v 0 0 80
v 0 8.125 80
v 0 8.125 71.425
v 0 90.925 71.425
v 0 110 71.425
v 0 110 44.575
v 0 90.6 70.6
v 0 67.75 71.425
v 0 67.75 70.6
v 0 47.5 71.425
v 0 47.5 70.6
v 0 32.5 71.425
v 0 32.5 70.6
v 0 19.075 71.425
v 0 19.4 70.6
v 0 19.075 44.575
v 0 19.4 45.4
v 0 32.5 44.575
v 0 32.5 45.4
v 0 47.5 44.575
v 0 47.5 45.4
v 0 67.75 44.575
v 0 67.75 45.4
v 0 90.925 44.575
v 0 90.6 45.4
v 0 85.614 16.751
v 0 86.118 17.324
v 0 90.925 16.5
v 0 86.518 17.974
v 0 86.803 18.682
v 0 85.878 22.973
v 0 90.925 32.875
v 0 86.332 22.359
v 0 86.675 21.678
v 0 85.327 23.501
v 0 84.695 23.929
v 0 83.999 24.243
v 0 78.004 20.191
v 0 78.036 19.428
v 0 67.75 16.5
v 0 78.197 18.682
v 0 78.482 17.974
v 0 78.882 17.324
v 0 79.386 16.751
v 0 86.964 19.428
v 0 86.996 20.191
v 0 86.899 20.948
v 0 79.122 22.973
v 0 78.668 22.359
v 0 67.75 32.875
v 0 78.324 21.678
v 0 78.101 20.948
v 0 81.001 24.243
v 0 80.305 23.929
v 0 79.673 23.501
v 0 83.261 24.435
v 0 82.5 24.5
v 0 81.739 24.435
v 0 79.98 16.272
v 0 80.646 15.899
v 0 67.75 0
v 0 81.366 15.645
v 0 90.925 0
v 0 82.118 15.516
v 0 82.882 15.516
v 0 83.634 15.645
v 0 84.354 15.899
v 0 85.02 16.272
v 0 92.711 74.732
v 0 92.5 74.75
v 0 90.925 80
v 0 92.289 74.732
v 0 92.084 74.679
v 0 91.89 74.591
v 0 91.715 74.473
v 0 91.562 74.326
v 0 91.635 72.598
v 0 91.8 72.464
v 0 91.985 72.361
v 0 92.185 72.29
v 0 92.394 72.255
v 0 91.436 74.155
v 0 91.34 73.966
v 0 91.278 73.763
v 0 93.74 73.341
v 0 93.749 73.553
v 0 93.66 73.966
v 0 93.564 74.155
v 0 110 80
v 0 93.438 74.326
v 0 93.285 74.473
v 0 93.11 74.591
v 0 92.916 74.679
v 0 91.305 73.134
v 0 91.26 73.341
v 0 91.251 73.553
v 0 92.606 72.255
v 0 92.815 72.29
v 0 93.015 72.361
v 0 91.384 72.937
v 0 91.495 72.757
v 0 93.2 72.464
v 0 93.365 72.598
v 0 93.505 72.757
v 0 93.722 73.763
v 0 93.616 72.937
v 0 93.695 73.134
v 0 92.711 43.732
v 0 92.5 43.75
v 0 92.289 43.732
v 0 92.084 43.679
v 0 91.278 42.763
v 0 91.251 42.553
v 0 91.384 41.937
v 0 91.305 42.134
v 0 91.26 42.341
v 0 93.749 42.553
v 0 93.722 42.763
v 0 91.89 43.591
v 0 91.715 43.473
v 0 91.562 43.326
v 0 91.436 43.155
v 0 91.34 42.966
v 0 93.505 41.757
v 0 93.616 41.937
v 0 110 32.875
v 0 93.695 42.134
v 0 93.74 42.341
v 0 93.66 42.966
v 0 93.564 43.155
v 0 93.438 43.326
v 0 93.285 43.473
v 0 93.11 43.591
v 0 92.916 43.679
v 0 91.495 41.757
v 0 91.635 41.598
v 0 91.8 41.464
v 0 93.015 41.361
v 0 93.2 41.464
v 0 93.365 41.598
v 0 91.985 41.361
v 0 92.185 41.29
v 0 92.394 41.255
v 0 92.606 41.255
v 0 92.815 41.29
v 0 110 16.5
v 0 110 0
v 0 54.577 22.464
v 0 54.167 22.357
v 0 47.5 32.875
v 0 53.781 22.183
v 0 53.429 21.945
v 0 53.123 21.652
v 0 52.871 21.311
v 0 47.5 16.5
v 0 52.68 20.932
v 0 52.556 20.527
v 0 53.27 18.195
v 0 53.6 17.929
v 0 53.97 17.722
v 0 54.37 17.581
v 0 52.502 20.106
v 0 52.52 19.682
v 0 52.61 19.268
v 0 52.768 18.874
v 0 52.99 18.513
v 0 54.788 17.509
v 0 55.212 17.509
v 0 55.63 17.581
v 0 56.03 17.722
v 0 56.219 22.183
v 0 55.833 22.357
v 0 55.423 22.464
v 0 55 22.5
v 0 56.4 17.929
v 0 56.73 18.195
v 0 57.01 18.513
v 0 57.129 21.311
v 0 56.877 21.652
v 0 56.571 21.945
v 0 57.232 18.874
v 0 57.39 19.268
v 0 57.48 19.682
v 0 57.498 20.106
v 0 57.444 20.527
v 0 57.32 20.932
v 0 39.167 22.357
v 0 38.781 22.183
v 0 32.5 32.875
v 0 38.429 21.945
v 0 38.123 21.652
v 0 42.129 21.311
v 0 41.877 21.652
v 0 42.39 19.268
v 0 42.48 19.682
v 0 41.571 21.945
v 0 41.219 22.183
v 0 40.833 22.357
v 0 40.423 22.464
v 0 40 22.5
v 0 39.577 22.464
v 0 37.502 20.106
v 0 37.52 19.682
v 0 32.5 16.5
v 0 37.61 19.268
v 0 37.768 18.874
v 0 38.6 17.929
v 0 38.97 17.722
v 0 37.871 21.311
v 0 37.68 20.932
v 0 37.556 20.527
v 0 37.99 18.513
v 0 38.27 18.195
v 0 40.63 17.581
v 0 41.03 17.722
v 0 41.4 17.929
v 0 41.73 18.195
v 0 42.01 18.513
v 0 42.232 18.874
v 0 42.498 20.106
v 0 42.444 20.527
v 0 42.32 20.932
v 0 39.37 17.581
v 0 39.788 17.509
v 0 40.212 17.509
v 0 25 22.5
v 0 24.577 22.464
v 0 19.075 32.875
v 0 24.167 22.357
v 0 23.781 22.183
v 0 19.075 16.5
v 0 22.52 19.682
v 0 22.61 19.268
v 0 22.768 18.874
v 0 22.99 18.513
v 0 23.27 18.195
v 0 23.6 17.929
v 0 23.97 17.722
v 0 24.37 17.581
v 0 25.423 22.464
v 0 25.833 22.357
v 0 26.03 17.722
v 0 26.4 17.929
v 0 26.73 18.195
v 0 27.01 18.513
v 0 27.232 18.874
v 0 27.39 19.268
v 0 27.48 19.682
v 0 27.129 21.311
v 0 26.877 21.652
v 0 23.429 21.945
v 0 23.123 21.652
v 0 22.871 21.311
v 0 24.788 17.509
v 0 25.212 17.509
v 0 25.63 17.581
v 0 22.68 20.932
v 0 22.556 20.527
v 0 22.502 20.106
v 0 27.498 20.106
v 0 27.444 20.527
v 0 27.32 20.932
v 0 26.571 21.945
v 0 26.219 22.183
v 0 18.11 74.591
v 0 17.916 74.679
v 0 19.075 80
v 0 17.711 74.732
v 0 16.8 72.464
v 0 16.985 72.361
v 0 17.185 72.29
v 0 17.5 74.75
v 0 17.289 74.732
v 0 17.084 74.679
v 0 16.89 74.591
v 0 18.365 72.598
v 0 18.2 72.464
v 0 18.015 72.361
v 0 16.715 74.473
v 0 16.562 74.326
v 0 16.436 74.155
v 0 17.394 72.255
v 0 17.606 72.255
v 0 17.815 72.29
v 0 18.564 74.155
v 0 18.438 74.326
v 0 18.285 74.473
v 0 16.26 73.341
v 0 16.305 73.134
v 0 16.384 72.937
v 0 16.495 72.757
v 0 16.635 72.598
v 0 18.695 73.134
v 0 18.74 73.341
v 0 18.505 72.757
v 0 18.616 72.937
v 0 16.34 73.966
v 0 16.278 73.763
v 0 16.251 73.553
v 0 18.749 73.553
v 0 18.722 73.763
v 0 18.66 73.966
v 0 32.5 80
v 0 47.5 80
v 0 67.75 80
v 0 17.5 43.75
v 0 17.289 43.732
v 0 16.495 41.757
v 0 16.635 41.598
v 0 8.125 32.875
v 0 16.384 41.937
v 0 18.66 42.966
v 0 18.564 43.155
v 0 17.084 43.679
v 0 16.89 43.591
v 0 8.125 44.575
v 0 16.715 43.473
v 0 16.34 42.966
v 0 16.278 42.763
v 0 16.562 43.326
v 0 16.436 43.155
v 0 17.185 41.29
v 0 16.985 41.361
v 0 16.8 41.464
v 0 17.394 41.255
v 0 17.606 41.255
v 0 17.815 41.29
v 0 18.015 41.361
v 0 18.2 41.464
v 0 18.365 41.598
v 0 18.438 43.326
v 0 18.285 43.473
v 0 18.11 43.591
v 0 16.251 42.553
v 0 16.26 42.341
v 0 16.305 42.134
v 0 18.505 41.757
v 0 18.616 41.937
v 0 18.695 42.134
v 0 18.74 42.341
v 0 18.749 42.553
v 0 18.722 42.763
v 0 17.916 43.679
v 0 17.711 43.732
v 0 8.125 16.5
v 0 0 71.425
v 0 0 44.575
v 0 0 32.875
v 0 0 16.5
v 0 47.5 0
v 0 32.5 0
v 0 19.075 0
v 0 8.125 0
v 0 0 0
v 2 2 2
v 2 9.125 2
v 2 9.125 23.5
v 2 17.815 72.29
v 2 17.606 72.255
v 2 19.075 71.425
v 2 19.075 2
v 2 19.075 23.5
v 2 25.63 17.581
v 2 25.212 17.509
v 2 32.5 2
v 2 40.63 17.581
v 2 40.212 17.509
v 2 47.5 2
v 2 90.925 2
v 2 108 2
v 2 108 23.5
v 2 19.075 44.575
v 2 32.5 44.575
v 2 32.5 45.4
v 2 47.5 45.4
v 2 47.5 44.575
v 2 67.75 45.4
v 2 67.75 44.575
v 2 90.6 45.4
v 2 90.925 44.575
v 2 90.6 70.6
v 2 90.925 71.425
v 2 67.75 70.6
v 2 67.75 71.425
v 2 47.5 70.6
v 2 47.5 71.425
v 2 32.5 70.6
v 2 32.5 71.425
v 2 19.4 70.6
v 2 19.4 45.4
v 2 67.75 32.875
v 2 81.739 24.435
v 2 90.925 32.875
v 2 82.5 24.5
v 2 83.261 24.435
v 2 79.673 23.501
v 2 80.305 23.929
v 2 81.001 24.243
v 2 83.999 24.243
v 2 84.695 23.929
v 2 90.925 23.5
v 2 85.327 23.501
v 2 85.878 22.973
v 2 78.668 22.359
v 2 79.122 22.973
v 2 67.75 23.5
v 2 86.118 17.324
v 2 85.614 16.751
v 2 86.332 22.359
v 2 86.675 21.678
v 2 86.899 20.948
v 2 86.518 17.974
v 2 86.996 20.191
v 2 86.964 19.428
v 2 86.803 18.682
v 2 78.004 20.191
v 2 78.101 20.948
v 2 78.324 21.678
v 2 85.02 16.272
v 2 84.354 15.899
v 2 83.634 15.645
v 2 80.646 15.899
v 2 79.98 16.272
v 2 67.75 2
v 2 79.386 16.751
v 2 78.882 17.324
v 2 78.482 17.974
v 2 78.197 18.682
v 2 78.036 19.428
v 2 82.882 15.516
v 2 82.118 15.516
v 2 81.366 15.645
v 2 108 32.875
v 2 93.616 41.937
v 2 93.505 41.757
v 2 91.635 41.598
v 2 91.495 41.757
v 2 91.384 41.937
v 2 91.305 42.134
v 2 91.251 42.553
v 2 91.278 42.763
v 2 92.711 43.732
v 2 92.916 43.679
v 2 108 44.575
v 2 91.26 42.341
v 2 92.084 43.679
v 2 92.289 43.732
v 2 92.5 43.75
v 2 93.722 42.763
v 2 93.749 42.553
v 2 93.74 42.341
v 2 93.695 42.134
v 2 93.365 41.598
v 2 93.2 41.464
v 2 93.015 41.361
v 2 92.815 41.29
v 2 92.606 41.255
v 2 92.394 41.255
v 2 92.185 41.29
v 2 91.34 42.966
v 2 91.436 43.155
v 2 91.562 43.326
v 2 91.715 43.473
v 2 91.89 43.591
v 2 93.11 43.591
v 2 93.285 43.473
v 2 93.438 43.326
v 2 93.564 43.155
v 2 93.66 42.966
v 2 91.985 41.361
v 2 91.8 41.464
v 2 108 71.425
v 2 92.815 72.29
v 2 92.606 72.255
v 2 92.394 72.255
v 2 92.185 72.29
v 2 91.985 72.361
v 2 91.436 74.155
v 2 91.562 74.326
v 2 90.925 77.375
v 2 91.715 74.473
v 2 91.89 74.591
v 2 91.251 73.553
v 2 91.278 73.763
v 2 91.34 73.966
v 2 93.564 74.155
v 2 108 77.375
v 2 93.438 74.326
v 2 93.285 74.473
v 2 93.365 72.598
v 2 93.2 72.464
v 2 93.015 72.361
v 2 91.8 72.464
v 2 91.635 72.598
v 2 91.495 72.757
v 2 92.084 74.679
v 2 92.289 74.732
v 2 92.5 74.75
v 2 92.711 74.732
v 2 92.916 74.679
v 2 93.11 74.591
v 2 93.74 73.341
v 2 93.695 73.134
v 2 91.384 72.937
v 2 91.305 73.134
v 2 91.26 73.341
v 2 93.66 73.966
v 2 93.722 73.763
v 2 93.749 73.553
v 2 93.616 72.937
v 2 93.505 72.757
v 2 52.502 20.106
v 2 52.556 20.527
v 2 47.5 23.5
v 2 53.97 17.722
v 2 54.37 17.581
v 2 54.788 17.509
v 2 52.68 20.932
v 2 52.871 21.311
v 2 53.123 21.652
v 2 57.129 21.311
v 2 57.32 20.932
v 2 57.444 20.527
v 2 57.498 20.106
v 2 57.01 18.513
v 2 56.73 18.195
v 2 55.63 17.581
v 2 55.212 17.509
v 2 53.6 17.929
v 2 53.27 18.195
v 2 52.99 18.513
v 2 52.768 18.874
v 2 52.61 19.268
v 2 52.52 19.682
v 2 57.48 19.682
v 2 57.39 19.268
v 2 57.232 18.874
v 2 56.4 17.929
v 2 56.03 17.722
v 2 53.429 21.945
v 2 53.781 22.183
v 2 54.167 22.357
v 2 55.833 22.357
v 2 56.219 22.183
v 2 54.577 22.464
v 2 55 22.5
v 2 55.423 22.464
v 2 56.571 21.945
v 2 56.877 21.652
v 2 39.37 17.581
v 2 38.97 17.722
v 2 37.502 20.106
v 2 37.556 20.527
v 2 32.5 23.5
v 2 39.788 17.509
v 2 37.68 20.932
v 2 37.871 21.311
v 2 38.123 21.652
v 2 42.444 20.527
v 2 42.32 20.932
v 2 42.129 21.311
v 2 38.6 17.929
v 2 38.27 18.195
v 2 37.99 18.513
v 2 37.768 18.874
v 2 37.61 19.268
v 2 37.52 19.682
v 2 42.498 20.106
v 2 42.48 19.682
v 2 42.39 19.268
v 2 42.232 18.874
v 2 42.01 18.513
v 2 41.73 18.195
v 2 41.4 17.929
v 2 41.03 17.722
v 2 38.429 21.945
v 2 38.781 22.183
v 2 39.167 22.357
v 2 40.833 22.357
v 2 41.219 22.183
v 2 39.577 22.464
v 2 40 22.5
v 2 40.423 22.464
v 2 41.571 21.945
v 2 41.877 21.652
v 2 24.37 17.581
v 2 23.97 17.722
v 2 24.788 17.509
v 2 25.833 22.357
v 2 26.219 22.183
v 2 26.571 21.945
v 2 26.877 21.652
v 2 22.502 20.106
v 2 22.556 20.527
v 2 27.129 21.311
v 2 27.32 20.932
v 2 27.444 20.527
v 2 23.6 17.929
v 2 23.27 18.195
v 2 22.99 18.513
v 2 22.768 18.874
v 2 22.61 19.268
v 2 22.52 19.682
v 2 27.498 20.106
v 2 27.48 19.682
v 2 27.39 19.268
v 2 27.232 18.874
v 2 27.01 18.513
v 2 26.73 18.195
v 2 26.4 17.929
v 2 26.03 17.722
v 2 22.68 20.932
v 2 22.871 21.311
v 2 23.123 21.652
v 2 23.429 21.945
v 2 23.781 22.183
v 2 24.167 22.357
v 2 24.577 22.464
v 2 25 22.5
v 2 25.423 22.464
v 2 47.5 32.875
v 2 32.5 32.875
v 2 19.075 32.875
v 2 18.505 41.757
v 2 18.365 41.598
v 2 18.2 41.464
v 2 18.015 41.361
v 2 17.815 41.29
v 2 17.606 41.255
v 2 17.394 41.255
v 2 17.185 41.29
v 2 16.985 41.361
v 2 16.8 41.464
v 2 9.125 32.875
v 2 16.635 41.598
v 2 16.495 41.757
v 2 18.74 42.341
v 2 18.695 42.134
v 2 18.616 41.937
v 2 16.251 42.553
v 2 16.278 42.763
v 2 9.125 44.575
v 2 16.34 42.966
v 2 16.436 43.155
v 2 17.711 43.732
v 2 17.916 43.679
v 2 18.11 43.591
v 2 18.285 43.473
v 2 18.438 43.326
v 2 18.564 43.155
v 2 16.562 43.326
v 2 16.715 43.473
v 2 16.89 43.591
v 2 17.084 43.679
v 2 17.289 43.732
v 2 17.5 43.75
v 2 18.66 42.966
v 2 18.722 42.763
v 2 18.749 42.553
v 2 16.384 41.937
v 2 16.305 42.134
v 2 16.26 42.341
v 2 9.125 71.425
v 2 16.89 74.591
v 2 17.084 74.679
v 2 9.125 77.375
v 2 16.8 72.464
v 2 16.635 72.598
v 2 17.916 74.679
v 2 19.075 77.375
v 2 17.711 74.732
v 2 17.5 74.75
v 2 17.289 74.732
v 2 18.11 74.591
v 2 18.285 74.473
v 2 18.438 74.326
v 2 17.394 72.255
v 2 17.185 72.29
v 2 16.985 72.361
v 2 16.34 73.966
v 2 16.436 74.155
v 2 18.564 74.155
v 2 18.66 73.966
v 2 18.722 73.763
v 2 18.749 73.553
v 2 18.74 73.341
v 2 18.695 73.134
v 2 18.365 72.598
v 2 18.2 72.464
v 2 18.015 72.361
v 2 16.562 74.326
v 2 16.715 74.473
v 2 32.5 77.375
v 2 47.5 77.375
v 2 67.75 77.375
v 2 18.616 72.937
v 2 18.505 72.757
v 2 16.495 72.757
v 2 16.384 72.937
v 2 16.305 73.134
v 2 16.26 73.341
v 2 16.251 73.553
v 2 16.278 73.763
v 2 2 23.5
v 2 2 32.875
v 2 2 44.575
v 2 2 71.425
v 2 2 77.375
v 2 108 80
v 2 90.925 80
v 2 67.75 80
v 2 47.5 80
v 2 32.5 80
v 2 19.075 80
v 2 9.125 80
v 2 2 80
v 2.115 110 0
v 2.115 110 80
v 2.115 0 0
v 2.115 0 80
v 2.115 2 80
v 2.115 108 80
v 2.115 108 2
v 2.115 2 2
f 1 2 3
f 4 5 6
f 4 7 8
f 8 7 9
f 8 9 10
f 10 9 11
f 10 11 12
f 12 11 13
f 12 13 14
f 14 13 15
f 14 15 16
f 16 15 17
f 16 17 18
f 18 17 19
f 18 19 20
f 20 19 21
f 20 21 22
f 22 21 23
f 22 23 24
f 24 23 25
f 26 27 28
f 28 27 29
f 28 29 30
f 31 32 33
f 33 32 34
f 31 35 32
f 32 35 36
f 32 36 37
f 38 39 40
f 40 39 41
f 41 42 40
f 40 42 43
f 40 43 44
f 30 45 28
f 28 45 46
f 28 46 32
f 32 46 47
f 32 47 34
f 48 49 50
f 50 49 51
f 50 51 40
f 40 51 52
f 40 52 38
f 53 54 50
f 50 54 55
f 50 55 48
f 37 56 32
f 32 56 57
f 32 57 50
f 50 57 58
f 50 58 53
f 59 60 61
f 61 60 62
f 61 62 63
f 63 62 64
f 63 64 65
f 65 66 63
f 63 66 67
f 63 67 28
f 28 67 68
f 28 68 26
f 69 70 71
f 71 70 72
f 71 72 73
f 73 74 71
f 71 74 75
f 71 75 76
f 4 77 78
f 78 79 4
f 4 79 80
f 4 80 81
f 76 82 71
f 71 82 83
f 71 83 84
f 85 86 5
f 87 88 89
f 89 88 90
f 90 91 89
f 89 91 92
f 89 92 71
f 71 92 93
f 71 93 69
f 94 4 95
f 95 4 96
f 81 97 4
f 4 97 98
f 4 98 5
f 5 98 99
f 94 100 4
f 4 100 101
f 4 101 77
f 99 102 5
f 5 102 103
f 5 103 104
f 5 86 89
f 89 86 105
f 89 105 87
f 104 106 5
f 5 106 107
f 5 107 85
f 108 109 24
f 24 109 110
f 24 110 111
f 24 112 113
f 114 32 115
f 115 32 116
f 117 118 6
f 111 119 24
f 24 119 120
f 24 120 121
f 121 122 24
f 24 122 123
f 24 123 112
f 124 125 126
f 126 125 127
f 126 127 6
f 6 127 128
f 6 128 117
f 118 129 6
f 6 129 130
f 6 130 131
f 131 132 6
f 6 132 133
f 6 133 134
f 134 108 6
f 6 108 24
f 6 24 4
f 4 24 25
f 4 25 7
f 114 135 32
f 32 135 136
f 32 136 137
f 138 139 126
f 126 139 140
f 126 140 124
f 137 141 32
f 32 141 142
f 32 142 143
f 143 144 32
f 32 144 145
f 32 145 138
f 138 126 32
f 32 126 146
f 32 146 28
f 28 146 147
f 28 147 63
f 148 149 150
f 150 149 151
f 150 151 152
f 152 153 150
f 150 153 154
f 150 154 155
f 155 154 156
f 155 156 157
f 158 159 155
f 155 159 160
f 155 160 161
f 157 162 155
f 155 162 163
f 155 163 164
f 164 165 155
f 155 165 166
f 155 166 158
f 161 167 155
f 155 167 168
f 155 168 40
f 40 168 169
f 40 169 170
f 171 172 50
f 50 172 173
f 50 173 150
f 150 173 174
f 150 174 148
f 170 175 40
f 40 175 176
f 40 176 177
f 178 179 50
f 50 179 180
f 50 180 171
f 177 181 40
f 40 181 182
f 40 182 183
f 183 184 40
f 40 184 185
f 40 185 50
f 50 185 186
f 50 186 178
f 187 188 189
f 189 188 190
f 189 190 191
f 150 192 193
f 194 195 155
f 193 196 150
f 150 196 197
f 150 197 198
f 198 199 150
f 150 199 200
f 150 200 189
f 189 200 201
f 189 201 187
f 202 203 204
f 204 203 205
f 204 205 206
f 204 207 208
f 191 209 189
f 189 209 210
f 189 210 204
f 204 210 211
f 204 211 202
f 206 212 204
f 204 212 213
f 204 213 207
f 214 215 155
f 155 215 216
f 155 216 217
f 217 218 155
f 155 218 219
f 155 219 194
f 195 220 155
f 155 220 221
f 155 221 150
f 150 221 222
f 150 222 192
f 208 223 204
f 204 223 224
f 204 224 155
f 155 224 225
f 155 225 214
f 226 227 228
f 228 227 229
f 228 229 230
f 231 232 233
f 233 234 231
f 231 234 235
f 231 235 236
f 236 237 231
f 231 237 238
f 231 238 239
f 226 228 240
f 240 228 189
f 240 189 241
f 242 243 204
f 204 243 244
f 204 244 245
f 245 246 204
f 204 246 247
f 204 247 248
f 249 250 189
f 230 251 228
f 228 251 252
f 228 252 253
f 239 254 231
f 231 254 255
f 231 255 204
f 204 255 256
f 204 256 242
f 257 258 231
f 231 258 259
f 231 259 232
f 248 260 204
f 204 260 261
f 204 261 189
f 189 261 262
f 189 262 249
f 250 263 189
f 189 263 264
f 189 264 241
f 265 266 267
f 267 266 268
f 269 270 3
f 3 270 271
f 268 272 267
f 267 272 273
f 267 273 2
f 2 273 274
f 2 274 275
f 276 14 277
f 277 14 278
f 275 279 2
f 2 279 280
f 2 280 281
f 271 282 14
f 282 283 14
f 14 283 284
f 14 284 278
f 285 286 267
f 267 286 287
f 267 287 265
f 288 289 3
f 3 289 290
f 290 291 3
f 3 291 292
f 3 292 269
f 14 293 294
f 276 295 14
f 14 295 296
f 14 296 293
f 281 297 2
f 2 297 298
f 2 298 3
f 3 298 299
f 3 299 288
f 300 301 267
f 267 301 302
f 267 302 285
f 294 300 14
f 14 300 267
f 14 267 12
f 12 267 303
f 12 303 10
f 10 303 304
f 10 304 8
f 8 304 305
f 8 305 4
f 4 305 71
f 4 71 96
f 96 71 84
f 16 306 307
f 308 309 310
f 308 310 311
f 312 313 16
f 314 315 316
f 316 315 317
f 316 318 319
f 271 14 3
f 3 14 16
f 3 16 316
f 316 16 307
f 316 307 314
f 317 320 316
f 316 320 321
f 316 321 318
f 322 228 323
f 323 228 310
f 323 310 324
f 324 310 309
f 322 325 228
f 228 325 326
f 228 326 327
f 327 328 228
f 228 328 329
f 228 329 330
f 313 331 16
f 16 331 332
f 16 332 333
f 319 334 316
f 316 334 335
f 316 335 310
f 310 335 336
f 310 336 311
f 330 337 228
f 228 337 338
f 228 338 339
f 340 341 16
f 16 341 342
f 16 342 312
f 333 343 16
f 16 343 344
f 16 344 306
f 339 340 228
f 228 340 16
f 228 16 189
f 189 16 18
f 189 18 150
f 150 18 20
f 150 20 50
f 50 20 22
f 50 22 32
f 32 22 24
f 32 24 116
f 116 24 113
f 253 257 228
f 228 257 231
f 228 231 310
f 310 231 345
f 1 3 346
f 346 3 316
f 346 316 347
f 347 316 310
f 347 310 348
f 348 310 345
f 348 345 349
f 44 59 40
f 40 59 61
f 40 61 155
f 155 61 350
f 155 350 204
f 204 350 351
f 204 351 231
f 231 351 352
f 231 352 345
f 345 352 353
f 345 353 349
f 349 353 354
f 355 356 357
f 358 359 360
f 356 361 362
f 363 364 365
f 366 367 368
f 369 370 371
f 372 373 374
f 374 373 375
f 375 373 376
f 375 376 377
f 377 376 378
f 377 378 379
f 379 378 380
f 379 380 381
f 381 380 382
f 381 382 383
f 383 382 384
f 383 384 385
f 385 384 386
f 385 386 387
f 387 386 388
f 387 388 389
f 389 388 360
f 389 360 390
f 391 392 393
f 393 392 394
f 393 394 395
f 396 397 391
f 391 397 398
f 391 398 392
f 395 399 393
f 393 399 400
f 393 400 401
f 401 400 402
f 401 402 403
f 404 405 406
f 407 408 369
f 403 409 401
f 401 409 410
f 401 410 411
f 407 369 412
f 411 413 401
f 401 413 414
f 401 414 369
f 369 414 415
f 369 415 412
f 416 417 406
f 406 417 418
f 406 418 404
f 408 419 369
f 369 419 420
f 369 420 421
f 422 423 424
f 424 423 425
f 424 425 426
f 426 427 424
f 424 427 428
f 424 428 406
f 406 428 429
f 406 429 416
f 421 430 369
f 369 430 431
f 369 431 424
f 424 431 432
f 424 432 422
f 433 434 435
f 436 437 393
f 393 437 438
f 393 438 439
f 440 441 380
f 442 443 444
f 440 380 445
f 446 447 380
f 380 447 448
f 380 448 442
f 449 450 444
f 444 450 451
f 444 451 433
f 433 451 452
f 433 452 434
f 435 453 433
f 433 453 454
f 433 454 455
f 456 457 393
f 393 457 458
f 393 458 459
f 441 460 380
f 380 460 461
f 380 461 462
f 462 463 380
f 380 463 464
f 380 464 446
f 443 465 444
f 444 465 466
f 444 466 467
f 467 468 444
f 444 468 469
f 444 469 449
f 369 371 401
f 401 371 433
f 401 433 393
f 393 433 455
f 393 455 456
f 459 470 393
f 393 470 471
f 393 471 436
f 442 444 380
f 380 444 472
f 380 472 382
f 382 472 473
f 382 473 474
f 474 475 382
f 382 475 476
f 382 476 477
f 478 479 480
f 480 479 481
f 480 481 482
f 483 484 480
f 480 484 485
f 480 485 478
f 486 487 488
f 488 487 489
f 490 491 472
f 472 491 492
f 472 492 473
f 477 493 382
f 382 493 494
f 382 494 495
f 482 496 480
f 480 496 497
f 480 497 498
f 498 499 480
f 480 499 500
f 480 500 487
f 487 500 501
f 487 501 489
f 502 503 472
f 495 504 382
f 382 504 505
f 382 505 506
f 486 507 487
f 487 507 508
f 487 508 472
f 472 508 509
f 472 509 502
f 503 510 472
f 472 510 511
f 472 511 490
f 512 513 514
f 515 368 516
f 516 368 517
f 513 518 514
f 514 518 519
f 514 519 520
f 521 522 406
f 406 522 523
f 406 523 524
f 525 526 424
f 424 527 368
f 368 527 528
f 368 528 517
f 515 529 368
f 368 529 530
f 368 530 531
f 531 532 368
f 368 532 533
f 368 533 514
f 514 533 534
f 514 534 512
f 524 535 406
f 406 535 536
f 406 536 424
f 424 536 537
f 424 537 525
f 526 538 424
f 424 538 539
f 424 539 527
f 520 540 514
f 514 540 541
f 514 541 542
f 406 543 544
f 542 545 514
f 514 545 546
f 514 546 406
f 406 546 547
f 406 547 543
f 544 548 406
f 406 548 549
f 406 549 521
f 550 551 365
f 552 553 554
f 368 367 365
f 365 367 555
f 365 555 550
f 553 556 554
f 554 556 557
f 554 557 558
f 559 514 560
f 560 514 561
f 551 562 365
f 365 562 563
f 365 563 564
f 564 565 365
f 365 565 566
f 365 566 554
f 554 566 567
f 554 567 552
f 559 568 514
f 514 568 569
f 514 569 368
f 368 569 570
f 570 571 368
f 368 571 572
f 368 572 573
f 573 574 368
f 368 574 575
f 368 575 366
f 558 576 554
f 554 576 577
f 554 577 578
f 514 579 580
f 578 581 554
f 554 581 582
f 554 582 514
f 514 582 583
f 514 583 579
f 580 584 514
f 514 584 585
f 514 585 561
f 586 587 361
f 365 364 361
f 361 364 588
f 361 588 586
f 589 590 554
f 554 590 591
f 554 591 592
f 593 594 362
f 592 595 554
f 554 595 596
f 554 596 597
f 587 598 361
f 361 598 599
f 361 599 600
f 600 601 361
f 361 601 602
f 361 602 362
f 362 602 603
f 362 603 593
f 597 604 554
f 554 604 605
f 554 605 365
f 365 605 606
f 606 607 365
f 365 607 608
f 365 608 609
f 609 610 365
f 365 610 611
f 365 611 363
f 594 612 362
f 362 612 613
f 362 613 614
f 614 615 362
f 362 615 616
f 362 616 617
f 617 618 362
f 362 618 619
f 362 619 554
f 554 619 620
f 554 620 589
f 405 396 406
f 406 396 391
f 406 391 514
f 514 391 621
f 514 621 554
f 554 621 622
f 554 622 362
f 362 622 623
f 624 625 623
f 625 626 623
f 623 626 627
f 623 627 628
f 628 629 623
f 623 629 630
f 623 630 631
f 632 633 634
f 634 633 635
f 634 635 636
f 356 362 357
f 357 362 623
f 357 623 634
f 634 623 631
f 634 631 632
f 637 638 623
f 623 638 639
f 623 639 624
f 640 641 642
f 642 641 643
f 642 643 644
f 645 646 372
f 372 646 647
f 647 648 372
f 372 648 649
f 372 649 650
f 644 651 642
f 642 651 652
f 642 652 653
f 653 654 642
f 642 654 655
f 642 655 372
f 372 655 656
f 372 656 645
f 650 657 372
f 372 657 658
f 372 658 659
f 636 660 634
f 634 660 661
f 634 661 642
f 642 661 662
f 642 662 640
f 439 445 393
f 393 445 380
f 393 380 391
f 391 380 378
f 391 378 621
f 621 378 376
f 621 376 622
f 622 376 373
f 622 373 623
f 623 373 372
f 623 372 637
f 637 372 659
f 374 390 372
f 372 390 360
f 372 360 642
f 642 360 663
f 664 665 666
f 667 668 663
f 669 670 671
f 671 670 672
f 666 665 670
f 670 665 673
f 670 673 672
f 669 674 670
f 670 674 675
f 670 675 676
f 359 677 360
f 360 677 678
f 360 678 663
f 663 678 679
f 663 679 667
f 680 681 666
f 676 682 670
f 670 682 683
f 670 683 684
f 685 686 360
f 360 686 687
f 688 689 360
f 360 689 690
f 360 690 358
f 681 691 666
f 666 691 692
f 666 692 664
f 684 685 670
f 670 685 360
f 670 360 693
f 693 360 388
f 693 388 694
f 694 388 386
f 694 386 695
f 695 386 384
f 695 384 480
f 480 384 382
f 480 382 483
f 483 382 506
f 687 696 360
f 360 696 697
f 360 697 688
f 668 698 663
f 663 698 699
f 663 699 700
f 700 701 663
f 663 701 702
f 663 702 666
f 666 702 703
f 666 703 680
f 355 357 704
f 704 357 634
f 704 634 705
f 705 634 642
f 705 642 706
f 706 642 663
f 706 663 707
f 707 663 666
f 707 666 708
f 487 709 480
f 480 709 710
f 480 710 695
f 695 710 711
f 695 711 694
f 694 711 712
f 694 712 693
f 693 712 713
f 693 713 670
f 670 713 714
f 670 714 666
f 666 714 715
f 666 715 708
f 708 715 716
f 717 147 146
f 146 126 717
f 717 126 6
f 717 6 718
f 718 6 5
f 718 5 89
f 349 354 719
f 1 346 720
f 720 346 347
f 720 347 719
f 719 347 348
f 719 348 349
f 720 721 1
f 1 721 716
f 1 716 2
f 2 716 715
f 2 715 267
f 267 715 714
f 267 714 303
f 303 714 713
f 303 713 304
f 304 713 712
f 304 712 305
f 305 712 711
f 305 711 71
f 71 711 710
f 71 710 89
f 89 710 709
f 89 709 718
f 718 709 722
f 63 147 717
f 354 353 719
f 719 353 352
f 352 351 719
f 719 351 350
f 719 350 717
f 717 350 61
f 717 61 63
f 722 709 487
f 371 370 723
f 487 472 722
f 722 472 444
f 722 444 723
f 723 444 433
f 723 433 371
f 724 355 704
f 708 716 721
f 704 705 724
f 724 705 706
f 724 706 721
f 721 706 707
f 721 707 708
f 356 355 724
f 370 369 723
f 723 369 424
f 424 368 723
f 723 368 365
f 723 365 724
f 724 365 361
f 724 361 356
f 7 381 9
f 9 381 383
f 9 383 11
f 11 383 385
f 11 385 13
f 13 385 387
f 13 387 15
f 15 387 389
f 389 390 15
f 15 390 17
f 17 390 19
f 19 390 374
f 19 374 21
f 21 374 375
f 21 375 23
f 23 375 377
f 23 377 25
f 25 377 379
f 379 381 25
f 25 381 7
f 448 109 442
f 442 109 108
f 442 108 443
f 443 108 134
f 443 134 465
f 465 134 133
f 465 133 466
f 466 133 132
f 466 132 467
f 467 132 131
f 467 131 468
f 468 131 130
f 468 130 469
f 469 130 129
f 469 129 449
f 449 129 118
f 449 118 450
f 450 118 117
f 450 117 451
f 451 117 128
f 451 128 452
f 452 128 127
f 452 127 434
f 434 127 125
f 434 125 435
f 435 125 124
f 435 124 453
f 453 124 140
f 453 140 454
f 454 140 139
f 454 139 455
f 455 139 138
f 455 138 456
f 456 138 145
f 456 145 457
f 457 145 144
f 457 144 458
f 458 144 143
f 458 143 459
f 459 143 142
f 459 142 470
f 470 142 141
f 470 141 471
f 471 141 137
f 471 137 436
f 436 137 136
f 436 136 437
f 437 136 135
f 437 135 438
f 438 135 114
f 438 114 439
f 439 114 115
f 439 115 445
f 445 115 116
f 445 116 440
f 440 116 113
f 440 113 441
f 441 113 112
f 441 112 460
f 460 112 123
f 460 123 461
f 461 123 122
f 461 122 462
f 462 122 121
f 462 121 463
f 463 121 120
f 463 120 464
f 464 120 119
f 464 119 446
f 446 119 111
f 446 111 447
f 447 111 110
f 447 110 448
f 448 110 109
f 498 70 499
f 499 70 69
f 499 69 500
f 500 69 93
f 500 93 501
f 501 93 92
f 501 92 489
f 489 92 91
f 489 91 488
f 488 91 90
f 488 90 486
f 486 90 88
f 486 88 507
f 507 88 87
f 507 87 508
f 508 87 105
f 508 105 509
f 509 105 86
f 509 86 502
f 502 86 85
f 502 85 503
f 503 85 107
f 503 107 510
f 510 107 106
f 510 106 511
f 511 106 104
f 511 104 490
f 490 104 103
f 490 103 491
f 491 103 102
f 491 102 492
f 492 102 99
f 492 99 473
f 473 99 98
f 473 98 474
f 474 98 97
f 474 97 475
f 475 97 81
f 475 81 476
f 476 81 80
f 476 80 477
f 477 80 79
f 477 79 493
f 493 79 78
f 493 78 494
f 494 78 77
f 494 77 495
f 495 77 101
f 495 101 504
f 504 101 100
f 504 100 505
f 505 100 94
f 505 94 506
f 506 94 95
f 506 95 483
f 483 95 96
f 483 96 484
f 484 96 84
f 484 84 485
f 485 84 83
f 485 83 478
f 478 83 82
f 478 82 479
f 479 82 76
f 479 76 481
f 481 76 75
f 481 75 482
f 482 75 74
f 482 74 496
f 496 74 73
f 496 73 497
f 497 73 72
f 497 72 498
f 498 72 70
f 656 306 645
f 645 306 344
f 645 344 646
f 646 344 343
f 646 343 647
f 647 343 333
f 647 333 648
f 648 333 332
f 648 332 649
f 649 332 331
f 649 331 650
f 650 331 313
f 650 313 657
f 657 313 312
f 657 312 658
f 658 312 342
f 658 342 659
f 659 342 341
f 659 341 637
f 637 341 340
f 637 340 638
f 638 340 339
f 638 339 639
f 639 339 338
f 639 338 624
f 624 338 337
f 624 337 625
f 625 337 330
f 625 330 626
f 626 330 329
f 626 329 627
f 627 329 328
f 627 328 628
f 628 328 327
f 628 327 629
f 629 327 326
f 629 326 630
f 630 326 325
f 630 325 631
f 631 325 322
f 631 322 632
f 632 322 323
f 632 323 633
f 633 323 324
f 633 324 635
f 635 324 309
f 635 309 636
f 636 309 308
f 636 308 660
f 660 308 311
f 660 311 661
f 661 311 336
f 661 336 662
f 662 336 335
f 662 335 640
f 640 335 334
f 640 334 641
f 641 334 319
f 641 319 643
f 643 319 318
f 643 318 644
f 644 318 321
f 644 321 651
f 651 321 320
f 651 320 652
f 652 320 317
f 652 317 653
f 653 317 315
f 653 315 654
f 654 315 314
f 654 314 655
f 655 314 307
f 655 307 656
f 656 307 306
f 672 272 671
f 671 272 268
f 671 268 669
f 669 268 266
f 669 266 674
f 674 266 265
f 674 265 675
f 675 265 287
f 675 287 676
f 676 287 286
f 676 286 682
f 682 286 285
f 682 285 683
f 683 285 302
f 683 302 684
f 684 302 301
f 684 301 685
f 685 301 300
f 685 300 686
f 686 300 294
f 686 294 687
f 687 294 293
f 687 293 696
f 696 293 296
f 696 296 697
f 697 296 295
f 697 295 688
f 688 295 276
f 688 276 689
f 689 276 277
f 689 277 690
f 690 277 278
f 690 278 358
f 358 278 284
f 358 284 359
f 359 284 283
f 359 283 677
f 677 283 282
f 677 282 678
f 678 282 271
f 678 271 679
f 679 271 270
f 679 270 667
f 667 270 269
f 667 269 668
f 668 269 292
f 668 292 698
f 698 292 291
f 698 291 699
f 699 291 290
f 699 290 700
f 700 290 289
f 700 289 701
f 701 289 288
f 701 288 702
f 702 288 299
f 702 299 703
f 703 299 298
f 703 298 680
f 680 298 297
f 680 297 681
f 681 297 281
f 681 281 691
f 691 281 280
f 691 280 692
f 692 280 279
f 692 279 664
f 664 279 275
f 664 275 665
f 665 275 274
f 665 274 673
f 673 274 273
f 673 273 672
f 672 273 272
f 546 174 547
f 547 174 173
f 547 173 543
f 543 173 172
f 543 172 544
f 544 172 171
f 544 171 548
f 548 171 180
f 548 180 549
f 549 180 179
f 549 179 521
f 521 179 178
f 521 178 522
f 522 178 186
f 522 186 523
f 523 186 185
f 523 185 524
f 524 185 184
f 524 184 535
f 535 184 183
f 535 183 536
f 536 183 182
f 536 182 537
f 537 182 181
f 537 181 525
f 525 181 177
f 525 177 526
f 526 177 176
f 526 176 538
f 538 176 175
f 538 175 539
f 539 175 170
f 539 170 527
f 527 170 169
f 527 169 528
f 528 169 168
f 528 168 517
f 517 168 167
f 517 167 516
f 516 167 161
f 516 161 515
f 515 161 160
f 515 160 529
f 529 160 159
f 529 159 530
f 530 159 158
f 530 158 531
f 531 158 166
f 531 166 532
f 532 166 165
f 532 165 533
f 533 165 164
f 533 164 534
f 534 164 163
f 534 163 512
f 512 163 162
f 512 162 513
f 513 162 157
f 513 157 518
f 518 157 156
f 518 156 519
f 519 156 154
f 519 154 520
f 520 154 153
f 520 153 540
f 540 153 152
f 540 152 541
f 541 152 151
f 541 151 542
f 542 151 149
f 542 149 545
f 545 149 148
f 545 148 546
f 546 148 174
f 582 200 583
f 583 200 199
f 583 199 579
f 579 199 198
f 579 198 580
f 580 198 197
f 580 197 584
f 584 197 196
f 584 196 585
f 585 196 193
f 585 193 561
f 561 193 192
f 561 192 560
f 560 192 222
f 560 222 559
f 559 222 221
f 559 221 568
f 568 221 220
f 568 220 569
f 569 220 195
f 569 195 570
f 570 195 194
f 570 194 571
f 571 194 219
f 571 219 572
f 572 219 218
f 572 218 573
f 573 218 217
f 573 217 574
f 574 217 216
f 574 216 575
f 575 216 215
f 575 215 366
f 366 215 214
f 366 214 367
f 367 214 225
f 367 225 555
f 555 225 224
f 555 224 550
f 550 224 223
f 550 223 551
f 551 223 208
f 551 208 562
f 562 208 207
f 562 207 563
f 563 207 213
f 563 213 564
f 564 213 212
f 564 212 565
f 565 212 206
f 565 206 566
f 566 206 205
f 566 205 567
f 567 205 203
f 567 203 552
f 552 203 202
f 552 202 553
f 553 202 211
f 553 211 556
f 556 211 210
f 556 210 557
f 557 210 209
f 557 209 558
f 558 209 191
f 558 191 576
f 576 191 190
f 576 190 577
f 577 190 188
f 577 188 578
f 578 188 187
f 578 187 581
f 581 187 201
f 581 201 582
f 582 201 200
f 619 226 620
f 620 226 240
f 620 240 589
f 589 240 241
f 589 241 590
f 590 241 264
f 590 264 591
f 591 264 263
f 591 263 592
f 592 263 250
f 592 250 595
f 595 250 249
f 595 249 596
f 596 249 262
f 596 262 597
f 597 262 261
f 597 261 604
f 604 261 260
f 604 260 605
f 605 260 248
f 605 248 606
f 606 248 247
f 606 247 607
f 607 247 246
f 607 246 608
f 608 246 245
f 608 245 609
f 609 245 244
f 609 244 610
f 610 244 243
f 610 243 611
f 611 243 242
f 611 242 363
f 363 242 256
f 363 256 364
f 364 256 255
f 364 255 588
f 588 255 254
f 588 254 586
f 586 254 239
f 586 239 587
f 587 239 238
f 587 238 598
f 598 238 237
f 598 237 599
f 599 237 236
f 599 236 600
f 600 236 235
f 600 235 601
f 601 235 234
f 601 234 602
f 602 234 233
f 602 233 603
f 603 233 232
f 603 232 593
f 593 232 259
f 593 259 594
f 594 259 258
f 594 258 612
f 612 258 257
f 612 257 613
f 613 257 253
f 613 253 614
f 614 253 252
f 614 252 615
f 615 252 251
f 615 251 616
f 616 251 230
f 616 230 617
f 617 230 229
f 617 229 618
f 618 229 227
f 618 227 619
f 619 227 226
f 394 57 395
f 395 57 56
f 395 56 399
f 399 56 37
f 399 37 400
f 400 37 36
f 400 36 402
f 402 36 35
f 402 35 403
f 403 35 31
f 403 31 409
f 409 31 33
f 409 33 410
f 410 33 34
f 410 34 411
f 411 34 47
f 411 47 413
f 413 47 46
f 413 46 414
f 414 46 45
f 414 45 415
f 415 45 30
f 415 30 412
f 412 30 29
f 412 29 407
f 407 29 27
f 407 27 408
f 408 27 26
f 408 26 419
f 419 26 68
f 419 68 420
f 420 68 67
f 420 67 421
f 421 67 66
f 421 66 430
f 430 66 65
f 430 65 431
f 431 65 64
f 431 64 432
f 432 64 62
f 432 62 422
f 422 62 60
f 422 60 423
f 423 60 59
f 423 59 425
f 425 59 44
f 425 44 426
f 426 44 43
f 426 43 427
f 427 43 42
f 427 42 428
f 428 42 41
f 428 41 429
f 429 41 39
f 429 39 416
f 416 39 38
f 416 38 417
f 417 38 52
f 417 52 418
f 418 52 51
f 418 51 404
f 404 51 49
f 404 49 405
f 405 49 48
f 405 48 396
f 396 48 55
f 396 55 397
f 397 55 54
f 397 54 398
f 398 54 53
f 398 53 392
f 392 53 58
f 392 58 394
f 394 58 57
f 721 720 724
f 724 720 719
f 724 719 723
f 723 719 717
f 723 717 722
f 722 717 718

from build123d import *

# Parameters (mm, degrees)
SKETCH1_W           = 155
SKETCH1_H           = 110
BOSS_EXTRUDE1_DEPTH = 80
SKETCH2_W           = 151
SKETCH2_H           = 106
CUT_EXTRUDE1_DEPTH  = 78
SKETCH3_R           = 2.5
CUT_EXTRUDE2_DEPTH  = 2
SKETCH7_R           = 1.6
CUT_EXTRUDE7_DEPTH  = 2
SKETCH4_W           = 27.5
SKETCH4_H           = 46.8
CUT_EXTRUDE8_DEPTH  = 2
SKETCH8_W           = 4
SKETCH8_H           = 53
CUT_EXTRUDE9_DEPTH  = 2
SKETCH9_W           = 14
SKETCH9_H           = 14
CUT_EXTRUDE10_DEPTH = 2
SKETCH10_W          = 25.2
SKETCH10_H          = 71.2
SKETCH10_R          = 1.25
CUT_EXTRUDE12_DEPTH = 2
SKETCH11_R          = 2.5
SKETCH11_R_2        = 4.5
CUT_EXTRUDE13_DEPTH = 2
SKETCH12_W          = 152.88518354
SKETCH12_H          = 110
CUT_EXTRUDE14_DEPTH = 80


with BuildPart() as part:
    # Sketch1 → Boss-Extrude1 (new body)
    with BuildSketch(Plane.XY):
        with Locations((77.5, 55)):
            Rectangle(SKETCH1_W, SKETCH1_H)
    extrude(amount=BOSS_EXTRUDE1_DEPTH)

    # Sketch2 → Cut-Extrude1 (cut)
    with BuildSketch(Plane.XY.offset(80)):
        with Locations((77.5, 55)):
            Rectangle(SKETCH2_W, SKETCH2_H)
    extrude(amount=-CUT_EXTRUDE1_DEPTH, mode=Mode.SUBTRACT)

    # Sketch3 → Cut-Extrude2 (cut)
    with BuildSketch(Plane.XY.offset(2)):
        with Locations((145, 100.5)):
            Circle(SKETCH3_R)
        with Locations((145, 9.5)):
            Circle(SKETCH3_R)
        with Locations((10, 9.5)):
            Circle(SKETCH3_R)
        with Locations((10, 100.5)):
            Circle(SKETCH3_R)
    extrude(amount=-CUT_EXTRUDE2_DEPTH, mode=Mode.SUBTRACT)

    # Sketch7 → Cut-Extrude7 (cut)
    with BuildSketch(Plane(origin=(0, 110, 0), x_dir=(1, 0, 0), z_dir=(0, 1, 0))):
        with Locations((44.48, -20.14450396)):
            Circle(SKETCH7_R)
        with Locations((95.28, -17.14)):
            Circle(SKETCH7_R)
        with Locations((95.28, -62.86)):
            Circle(SKETCH7_R)
        with Locations((44.48, -47.62)):
            Circle(SKETCH7_R)
    extrude(amount=-CUT_EXTRUDE7_DEPTH, mode=Mode.SUBTRACT)

    # Sketch4 → Cut-Extrude8 (cut)
    with BuildSketch(Plane(origin=(155, 0, 0), x_dir=(0, 0, -1), z_dir=(1, 0, 0))):
        with Locations((-40, 82.5)):
            Rectangle(SKETCH4_W, SKETCH4_H)
    extrude(amount=-CUT_EXTRUDE8_DEPTH, mode=Mode.SUBTRACT)

    # Sketch8 → Cut-Extrude9 (cut)
    with BuildSketch(Plane(origin=(155, 0, 0), x_dir=(0, 0, -1), z_dir=(1, 0, 0))):
        with Locations((-68, 28.5)):
            Rectangle(SKETCH8_W, SKETCH8_H)
        with Locations((-76, 28.5)):
            Rectangle(SKETCH8_W, SKETCH8_H)
        with Locations((-60, 28.5)):
            Rectangle(SKETCH8_W, SKETCH8_H)
        with Locations((-52, 28.5)):
            Rectangle(SKETCH8_W, SKETCH8_H)
        with Locations((-44, 28.5)):
            Rectangle(SKETCH8_W, SKETCH8_H)
        with Locations((-36, 28.5)):
            Rectangle(SKETCH8_W, SKETCH8_H)
        with Locations((-28, 28.5)):
            Rectangle(SKETCH8_W, SKETCH8_H)
        with Locations((-20, 28.5)):
            Rectangle(SKETCH8_W, SKETCH8_H)
        with Locations((-12, 28.5)):
            Rectangle(SKETCH8_W, SKETCH8_H)
        with Locations((-4, 28.5)):
            Rectangle(SKETCH8_W, SKETCH8_H)
    extrude(amount=-CUT_EXTRUDE9_DEPTH, mode=Mode.SUBTRACT)

    # Sketch9 → Cut-Extrude10 (cut)
    with BuildSketch(Plane(origin=(0, 110, 0), x_dir=(1, 0, 0), z_dir=(0, 1, 0))):
        with Locations((120, -19)):
            Rectangle(SKETCH9_W, SKETCH9_H)
    extrude(amount=-CUT_EXTRUDE10_DEPTH, mode=Mode.SUBTRACT)

    # Sketch10 → Cut-Extrude12 (cut)
    with BuildSketch(Plane.ZY):
        with Locations((58, 55)):
            Rectangle(SKETCH10_W, SKETCH10_H)
        with Locations((42.5, 92.5)):
            Circle(SKETCH10_R)
        with Locations((73.5, 92.5)):
            Circle(SKETCH10_R)
        with Locations((42.5, 17.5)):
            Circle(SKETCH10_R)
        with Locations((73.5, 17.5)):
            Circle(SKETCH10_R)
    extrude(amount=-CUT_EXTRUDE12_DEPTH, mode=Mode.SUBTRACT)

    # Sketch11 → Cut-Extrude13 (cut)
    with BuildSketch(Plane.ZY):
        with Locations((20, 55)):
            Circle(SKETCH11_R)
        with Locations((20, 40)):
            Circle(SKETCH11_R)
        with Locations((20, 25)):
            Circle(SKETCH11_R)
        with Locations((20, 82.5)):
            Circle(SKETCH11_R_2)
    extrude(amount=-CUT_EXTRUDE13_DEPTH, mode=Mode.SUBTRACT)

    # Sketch12 → Cut-Extrude14 (cut)
    with BuildSketch(Plane.XY.offset(80)):
        with Locations((78.55740823, 55)):
            Rectangle(SKETCH12_W, SKETCH12_H)
    extrude(amount=-CUT_EXTRUDE14_DEPTH, mode=Mode.SUBTRACT)


solid = part.part
